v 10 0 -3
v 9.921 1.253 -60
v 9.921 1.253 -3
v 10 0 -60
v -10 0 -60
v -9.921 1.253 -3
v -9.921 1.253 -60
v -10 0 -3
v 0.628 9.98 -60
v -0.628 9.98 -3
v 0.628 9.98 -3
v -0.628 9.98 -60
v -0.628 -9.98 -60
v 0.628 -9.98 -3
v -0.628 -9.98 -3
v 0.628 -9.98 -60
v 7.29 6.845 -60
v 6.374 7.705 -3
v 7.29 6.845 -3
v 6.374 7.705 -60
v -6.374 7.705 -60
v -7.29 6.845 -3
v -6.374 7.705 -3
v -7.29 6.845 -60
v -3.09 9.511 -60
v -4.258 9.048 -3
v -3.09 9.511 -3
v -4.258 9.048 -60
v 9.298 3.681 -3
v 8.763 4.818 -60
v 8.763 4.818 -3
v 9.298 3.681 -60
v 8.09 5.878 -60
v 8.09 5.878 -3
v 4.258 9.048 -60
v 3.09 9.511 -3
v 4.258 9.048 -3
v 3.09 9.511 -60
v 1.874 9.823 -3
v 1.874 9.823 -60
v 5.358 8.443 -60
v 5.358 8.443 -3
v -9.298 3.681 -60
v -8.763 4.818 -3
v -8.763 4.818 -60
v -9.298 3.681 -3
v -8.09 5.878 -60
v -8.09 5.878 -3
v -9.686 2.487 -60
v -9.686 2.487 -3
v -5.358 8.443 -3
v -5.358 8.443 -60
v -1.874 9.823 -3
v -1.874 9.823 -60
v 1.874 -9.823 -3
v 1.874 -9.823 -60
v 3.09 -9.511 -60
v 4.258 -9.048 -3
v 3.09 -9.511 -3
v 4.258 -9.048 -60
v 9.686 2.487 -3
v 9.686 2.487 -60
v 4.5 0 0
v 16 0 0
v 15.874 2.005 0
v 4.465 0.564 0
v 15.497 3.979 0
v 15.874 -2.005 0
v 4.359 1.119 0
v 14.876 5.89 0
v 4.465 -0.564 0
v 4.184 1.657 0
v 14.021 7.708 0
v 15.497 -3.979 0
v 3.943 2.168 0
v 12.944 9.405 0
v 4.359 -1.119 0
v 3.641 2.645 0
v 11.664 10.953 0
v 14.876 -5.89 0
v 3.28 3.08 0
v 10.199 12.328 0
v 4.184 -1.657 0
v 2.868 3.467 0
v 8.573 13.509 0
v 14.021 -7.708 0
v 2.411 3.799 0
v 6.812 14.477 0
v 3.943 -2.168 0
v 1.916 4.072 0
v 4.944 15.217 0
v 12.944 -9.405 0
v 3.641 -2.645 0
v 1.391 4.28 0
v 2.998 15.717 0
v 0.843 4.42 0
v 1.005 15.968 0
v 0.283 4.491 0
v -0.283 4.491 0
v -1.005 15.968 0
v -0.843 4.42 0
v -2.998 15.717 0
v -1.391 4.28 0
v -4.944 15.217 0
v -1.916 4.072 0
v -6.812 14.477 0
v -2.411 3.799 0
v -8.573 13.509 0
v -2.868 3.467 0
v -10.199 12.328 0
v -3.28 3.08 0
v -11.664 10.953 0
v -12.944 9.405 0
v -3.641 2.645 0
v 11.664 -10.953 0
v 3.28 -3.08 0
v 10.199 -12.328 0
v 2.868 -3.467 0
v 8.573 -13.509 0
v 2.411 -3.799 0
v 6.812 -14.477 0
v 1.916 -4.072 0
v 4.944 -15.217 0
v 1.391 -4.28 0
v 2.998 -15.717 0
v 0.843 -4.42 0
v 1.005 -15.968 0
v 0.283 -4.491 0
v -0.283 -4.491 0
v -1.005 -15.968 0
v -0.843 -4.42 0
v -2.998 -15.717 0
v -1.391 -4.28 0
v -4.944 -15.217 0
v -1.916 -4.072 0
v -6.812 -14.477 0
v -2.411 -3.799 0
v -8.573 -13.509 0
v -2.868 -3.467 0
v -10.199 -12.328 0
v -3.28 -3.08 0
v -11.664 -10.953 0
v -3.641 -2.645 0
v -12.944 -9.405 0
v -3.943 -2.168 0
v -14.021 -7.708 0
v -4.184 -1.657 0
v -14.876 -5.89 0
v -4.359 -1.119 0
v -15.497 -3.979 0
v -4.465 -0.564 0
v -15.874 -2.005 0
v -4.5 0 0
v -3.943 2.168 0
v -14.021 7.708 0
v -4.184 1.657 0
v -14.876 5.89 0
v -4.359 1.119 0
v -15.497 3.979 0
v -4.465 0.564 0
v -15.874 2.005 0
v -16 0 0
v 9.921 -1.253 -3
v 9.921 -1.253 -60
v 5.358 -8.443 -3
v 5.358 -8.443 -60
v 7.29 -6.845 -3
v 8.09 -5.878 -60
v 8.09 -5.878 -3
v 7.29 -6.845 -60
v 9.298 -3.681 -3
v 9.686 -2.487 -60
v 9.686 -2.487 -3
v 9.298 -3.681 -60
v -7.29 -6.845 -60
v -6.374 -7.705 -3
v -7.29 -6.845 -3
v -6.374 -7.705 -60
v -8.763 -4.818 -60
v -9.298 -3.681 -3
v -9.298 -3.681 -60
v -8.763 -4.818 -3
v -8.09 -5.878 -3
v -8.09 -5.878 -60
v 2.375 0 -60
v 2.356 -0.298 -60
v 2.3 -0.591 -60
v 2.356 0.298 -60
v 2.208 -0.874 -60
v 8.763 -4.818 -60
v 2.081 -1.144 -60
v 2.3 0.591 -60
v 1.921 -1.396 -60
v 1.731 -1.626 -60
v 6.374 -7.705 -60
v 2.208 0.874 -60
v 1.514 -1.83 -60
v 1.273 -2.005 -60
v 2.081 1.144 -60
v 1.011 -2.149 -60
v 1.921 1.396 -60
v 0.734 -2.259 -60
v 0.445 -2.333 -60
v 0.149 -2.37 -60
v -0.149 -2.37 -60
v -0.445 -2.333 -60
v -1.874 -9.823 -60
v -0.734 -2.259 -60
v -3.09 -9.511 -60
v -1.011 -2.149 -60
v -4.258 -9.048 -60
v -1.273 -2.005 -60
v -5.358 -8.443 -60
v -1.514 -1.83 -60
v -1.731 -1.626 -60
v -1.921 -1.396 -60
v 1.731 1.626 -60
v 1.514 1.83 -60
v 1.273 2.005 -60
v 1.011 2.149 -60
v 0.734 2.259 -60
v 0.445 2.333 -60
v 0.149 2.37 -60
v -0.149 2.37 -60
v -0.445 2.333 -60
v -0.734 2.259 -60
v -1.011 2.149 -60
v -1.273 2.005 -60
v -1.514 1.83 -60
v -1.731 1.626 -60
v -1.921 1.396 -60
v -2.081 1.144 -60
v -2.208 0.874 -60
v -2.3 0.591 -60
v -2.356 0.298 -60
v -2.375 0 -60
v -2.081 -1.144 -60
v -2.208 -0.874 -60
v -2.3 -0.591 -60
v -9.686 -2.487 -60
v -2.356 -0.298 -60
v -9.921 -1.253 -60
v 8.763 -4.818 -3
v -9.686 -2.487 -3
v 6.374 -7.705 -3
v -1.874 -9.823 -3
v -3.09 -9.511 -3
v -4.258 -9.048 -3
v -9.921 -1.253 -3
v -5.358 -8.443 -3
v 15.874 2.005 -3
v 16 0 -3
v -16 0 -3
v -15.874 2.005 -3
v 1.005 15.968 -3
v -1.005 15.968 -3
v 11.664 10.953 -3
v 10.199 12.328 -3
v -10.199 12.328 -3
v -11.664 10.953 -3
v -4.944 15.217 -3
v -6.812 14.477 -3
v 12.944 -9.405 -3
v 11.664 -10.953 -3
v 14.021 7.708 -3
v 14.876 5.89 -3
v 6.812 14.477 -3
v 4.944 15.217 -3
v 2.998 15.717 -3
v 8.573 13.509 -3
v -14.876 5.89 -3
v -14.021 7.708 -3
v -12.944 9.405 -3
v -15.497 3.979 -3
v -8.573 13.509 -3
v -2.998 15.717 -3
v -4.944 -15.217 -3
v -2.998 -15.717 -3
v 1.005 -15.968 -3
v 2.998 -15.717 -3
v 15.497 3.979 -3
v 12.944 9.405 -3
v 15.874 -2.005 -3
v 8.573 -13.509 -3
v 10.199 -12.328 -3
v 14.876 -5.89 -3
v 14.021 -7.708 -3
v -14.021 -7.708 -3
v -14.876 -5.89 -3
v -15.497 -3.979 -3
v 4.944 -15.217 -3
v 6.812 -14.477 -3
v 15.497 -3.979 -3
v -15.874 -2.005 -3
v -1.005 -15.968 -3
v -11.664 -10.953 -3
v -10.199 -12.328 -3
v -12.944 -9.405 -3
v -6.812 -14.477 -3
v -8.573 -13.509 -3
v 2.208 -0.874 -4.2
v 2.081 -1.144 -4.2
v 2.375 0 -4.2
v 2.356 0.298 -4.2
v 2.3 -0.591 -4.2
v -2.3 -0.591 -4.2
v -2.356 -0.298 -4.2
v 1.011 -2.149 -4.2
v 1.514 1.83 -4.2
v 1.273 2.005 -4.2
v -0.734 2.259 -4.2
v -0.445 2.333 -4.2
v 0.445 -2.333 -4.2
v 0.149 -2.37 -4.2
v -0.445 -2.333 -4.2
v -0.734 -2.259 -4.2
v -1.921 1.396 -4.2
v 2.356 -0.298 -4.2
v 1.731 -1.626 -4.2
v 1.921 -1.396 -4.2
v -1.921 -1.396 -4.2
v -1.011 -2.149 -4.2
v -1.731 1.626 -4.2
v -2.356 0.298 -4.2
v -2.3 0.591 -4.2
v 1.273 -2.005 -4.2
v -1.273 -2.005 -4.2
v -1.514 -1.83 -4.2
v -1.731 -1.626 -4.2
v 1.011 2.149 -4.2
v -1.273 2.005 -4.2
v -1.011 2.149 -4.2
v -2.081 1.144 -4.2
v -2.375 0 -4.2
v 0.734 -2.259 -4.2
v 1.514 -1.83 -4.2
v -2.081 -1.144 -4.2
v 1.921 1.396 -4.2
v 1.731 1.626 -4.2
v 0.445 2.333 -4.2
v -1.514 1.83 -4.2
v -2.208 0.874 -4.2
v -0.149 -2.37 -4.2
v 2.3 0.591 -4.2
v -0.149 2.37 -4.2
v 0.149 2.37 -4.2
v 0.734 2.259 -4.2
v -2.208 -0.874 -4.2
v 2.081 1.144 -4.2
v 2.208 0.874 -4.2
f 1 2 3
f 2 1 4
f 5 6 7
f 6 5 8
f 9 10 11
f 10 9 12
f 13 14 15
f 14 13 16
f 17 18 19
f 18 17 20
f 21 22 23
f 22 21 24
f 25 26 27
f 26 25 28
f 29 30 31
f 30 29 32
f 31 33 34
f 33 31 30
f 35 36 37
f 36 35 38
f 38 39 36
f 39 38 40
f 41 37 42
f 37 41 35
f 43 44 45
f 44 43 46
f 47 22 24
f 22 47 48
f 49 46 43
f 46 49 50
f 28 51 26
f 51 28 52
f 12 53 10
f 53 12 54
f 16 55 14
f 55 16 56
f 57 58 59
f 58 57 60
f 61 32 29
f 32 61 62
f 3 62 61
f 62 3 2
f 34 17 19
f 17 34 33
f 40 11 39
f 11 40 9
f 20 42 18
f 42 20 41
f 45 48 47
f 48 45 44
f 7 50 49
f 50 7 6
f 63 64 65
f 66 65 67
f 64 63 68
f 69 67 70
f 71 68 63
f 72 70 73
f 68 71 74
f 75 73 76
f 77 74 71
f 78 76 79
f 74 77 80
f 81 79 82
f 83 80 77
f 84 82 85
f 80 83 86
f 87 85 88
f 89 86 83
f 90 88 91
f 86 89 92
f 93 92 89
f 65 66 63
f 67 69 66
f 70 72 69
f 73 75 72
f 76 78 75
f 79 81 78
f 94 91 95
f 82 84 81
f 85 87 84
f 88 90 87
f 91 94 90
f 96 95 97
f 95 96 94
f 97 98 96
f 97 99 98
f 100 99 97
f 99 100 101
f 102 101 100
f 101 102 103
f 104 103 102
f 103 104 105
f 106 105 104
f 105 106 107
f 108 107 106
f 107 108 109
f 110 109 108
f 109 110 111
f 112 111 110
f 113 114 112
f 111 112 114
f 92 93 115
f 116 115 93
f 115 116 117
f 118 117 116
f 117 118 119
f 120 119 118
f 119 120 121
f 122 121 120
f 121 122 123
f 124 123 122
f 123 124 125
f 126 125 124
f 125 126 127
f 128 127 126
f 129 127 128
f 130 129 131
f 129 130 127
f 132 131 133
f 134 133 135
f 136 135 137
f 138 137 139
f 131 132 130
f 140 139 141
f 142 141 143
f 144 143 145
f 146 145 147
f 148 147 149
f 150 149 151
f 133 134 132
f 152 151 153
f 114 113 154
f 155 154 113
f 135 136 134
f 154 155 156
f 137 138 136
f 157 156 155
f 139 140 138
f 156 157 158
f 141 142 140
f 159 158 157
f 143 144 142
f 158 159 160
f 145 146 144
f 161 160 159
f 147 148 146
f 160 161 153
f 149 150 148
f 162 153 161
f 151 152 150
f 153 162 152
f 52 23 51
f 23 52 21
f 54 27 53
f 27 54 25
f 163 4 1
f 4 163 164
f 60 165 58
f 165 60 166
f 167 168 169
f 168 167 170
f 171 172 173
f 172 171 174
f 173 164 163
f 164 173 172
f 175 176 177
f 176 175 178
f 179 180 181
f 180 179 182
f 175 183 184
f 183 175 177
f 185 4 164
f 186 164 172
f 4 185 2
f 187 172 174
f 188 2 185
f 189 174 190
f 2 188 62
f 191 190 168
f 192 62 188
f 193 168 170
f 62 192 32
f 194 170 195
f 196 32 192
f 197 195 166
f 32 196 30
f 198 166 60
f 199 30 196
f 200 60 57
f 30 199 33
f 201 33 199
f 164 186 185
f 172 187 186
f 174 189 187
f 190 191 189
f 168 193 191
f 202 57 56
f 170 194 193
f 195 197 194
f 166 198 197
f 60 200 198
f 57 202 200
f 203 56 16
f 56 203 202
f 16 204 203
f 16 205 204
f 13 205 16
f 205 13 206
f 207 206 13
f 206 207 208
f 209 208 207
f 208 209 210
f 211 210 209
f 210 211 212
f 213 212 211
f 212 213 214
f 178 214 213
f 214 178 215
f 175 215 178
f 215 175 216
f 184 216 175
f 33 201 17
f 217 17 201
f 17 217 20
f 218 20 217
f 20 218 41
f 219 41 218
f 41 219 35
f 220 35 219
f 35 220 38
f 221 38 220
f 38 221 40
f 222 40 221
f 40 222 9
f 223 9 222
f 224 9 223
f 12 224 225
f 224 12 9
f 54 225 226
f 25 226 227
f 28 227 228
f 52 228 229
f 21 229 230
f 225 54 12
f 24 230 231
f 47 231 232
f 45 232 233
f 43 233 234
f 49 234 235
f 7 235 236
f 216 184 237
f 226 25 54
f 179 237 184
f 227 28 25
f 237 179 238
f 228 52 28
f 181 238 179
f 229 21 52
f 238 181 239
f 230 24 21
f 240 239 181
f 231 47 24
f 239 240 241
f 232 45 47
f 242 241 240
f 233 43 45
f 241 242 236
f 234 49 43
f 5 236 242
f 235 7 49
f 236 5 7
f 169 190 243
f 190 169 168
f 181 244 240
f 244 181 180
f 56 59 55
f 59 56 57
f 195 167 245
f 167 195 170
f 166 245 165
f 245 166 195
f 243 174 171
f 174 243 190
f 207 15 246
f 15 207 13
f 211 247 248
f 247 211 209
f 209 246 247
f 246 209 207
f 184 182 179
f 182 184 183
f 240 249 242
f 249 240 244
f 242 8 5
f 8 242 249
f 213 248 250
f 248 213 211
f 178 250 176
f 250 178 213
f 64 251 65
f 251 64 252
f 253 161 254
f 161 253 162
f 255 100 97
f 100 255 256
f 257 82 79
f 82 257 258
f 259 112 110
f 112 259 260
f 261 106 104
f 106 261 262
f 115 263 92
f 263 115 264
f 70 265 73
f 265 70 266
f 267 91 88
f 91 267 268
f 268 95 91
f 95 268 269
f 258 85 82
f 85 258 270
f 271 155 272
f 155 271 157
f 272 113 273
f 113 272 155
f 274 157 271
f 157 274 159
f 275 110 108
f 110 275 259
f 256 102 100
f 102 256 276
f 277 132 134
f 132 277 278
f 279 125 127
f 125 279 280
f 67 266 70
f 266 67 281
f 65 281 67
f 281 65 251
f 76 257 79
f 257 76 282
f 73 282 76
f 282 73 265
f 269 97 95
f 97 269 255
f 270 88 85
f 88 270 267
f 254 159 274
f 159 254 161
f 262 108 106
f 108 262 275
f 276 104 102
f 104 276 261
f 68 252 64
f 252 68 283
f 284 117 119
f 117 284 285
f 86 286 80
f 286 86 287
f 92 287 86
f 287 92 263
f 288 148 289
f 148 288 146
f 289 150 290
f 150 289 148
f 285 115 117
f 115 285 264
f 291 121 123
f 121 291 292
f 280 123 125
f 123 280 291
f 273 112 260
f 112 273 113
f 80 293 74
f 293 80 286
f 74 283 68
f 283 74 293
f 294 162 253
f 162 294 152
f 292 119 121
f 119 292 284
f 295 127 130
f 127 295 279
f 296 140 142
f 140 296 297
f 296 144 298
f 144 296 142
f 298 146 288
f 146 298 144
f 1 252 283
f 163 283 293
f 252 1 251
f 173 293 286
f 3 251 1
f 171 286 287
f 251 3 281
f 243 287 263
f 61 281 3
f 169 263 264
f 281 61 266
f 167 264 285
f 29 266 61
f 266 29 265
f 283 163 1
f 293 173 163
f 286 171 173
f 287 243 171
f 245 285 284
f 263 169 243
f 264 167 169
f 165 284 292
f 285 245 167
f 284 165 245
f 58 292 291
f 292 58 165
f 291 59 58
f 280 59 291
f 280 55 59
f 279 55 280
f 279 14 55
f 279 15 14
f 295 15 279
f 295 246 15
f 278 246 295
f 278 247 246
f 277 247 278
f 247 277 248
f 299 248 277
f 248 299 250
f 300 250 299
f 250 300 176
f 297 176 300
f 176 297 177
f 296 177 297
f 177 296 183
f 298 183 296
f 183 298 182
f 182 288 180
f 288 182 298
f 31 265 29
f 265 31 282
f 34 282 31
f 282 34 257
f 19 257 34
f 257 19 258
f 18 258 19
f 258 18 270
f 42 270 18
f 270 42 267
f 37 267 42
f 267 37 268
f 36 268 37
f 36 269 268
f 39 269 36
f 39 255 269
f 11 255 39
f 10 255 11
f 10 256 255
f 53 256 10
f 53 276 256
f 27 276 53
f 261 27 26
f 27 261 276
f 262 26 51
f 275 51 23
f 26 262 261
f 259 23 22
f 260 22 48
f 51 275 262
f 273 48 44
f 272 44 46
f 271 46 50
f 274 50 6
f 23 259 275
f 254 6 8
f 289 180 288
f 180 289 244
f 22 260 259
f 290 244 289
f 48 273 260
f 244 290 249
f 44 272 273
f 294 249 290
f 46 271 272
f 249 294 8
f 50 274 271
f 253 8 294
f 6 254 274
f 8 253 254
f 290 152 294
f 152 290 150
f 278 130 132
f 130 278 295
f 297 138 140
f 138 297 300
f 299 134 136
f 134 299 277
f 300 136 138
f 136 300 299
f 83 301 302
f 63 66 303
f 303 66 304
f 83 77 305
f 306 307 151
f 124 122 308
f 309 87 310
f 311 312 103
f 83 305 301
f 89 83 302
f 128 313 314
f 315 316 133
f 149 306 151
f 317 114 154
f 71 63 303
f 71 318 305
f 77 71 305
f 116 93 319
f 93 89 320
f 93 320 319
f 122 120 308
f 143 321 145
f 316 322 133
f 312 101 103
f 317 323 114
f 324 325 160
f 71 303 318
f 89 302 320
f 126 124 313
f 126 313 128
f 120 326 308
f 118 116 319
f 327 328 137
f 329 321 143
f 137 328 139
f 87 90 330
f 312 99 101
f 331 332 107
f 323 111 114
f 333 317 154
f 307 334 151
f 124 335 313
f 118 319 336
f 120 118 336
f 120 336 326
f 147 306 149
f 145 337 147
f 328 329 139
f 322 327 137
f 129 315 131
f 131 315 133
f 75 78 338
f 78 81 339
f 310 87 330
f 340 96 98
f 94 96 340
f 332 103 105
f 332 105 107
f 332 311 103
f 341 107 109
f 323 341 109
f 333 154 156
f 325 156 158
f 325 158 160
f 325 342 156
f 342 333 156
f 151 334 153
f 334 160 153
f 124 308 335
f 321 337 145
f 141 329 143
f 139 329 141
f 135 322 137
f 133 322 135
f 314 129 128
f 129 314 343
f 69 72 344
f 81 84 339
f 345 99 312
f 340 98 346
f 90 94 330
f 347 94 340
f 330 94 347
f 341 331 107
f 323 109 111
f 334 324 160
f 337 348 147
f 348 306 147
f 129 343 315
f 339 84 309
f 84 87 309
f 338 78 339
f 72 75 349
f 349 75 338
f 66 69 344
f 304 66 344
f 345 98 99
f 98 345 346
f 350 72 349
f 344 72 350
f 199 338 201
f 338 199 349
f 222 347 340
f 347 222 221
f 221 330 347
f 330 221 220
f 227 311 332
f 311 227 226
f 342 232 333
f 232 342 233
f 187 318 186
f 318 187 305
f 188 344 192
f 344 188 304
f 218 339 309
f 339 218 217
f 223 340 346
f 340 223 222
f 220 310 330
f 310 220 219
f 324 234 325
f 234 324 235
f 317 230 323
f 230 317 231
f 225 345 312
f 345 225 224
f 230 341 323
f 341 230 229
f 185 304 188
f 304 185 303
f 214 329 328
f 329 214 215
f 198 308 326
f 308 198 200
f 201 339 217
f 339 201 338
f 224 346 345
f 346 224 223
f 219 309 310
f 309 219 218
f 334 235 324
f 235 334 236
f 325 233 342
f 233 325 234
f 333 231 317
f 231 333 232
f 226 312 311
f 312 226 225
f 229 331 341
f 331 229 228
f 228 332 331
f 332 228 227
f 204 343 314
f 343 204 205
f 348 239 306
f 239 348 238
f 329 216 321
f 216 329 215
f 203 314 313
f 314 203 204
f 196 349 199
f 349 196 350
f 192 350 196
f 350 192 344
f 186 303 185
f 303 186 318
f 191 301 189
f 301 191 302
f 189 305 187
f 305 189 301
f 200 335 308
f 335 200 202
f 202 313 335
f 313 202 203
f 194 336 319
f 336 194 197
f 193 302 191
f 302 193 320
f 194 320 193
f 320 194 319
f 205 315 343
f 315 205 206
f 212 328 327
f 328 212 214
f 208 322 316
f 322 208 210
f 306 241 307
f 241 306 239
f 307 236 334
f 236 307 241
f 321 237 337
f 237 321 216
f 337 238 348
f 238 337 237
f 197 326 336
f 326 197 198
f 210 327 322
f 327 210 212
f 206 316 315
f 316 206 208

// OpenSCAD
$fn = 50;


difference() {
	union() {
		translate(v = [0, 0, -60.0000000000]) {
			cylinder(h = 60, r = 10.0000000000);
		}
		translate(v = [0, 0, -3.0000000000]) {
			cylinder(h = 3, r = 16.0000000000);
		}
	}
	union() {
		translate(v = [0, 0, 0]) {
			rotate(a = [0, 0, 0]) {
				difference() {
					union() {
						#translate(v = [0, 0, -60.0000000000]) {
							cylinder(h = 60, r = 2.2500000000);
						}
						#translate(v = [0, 0, -4.2000000000]) {
							cylinder(h = 4.2000000000, r1 = 2.3750000000, r2 = 4.5000000000);
						}
						#translate(v = [0, 0, -60.0000000000]) {
							cylinder(h = 60, r = 2.3750000000);
						}
						#translate(v = [0, 0, -60.0000000000]) {
							cylinder(h = 60, r = 2.2500000000);
						}
					}
					union();
				}
			}
		}
	}
}
